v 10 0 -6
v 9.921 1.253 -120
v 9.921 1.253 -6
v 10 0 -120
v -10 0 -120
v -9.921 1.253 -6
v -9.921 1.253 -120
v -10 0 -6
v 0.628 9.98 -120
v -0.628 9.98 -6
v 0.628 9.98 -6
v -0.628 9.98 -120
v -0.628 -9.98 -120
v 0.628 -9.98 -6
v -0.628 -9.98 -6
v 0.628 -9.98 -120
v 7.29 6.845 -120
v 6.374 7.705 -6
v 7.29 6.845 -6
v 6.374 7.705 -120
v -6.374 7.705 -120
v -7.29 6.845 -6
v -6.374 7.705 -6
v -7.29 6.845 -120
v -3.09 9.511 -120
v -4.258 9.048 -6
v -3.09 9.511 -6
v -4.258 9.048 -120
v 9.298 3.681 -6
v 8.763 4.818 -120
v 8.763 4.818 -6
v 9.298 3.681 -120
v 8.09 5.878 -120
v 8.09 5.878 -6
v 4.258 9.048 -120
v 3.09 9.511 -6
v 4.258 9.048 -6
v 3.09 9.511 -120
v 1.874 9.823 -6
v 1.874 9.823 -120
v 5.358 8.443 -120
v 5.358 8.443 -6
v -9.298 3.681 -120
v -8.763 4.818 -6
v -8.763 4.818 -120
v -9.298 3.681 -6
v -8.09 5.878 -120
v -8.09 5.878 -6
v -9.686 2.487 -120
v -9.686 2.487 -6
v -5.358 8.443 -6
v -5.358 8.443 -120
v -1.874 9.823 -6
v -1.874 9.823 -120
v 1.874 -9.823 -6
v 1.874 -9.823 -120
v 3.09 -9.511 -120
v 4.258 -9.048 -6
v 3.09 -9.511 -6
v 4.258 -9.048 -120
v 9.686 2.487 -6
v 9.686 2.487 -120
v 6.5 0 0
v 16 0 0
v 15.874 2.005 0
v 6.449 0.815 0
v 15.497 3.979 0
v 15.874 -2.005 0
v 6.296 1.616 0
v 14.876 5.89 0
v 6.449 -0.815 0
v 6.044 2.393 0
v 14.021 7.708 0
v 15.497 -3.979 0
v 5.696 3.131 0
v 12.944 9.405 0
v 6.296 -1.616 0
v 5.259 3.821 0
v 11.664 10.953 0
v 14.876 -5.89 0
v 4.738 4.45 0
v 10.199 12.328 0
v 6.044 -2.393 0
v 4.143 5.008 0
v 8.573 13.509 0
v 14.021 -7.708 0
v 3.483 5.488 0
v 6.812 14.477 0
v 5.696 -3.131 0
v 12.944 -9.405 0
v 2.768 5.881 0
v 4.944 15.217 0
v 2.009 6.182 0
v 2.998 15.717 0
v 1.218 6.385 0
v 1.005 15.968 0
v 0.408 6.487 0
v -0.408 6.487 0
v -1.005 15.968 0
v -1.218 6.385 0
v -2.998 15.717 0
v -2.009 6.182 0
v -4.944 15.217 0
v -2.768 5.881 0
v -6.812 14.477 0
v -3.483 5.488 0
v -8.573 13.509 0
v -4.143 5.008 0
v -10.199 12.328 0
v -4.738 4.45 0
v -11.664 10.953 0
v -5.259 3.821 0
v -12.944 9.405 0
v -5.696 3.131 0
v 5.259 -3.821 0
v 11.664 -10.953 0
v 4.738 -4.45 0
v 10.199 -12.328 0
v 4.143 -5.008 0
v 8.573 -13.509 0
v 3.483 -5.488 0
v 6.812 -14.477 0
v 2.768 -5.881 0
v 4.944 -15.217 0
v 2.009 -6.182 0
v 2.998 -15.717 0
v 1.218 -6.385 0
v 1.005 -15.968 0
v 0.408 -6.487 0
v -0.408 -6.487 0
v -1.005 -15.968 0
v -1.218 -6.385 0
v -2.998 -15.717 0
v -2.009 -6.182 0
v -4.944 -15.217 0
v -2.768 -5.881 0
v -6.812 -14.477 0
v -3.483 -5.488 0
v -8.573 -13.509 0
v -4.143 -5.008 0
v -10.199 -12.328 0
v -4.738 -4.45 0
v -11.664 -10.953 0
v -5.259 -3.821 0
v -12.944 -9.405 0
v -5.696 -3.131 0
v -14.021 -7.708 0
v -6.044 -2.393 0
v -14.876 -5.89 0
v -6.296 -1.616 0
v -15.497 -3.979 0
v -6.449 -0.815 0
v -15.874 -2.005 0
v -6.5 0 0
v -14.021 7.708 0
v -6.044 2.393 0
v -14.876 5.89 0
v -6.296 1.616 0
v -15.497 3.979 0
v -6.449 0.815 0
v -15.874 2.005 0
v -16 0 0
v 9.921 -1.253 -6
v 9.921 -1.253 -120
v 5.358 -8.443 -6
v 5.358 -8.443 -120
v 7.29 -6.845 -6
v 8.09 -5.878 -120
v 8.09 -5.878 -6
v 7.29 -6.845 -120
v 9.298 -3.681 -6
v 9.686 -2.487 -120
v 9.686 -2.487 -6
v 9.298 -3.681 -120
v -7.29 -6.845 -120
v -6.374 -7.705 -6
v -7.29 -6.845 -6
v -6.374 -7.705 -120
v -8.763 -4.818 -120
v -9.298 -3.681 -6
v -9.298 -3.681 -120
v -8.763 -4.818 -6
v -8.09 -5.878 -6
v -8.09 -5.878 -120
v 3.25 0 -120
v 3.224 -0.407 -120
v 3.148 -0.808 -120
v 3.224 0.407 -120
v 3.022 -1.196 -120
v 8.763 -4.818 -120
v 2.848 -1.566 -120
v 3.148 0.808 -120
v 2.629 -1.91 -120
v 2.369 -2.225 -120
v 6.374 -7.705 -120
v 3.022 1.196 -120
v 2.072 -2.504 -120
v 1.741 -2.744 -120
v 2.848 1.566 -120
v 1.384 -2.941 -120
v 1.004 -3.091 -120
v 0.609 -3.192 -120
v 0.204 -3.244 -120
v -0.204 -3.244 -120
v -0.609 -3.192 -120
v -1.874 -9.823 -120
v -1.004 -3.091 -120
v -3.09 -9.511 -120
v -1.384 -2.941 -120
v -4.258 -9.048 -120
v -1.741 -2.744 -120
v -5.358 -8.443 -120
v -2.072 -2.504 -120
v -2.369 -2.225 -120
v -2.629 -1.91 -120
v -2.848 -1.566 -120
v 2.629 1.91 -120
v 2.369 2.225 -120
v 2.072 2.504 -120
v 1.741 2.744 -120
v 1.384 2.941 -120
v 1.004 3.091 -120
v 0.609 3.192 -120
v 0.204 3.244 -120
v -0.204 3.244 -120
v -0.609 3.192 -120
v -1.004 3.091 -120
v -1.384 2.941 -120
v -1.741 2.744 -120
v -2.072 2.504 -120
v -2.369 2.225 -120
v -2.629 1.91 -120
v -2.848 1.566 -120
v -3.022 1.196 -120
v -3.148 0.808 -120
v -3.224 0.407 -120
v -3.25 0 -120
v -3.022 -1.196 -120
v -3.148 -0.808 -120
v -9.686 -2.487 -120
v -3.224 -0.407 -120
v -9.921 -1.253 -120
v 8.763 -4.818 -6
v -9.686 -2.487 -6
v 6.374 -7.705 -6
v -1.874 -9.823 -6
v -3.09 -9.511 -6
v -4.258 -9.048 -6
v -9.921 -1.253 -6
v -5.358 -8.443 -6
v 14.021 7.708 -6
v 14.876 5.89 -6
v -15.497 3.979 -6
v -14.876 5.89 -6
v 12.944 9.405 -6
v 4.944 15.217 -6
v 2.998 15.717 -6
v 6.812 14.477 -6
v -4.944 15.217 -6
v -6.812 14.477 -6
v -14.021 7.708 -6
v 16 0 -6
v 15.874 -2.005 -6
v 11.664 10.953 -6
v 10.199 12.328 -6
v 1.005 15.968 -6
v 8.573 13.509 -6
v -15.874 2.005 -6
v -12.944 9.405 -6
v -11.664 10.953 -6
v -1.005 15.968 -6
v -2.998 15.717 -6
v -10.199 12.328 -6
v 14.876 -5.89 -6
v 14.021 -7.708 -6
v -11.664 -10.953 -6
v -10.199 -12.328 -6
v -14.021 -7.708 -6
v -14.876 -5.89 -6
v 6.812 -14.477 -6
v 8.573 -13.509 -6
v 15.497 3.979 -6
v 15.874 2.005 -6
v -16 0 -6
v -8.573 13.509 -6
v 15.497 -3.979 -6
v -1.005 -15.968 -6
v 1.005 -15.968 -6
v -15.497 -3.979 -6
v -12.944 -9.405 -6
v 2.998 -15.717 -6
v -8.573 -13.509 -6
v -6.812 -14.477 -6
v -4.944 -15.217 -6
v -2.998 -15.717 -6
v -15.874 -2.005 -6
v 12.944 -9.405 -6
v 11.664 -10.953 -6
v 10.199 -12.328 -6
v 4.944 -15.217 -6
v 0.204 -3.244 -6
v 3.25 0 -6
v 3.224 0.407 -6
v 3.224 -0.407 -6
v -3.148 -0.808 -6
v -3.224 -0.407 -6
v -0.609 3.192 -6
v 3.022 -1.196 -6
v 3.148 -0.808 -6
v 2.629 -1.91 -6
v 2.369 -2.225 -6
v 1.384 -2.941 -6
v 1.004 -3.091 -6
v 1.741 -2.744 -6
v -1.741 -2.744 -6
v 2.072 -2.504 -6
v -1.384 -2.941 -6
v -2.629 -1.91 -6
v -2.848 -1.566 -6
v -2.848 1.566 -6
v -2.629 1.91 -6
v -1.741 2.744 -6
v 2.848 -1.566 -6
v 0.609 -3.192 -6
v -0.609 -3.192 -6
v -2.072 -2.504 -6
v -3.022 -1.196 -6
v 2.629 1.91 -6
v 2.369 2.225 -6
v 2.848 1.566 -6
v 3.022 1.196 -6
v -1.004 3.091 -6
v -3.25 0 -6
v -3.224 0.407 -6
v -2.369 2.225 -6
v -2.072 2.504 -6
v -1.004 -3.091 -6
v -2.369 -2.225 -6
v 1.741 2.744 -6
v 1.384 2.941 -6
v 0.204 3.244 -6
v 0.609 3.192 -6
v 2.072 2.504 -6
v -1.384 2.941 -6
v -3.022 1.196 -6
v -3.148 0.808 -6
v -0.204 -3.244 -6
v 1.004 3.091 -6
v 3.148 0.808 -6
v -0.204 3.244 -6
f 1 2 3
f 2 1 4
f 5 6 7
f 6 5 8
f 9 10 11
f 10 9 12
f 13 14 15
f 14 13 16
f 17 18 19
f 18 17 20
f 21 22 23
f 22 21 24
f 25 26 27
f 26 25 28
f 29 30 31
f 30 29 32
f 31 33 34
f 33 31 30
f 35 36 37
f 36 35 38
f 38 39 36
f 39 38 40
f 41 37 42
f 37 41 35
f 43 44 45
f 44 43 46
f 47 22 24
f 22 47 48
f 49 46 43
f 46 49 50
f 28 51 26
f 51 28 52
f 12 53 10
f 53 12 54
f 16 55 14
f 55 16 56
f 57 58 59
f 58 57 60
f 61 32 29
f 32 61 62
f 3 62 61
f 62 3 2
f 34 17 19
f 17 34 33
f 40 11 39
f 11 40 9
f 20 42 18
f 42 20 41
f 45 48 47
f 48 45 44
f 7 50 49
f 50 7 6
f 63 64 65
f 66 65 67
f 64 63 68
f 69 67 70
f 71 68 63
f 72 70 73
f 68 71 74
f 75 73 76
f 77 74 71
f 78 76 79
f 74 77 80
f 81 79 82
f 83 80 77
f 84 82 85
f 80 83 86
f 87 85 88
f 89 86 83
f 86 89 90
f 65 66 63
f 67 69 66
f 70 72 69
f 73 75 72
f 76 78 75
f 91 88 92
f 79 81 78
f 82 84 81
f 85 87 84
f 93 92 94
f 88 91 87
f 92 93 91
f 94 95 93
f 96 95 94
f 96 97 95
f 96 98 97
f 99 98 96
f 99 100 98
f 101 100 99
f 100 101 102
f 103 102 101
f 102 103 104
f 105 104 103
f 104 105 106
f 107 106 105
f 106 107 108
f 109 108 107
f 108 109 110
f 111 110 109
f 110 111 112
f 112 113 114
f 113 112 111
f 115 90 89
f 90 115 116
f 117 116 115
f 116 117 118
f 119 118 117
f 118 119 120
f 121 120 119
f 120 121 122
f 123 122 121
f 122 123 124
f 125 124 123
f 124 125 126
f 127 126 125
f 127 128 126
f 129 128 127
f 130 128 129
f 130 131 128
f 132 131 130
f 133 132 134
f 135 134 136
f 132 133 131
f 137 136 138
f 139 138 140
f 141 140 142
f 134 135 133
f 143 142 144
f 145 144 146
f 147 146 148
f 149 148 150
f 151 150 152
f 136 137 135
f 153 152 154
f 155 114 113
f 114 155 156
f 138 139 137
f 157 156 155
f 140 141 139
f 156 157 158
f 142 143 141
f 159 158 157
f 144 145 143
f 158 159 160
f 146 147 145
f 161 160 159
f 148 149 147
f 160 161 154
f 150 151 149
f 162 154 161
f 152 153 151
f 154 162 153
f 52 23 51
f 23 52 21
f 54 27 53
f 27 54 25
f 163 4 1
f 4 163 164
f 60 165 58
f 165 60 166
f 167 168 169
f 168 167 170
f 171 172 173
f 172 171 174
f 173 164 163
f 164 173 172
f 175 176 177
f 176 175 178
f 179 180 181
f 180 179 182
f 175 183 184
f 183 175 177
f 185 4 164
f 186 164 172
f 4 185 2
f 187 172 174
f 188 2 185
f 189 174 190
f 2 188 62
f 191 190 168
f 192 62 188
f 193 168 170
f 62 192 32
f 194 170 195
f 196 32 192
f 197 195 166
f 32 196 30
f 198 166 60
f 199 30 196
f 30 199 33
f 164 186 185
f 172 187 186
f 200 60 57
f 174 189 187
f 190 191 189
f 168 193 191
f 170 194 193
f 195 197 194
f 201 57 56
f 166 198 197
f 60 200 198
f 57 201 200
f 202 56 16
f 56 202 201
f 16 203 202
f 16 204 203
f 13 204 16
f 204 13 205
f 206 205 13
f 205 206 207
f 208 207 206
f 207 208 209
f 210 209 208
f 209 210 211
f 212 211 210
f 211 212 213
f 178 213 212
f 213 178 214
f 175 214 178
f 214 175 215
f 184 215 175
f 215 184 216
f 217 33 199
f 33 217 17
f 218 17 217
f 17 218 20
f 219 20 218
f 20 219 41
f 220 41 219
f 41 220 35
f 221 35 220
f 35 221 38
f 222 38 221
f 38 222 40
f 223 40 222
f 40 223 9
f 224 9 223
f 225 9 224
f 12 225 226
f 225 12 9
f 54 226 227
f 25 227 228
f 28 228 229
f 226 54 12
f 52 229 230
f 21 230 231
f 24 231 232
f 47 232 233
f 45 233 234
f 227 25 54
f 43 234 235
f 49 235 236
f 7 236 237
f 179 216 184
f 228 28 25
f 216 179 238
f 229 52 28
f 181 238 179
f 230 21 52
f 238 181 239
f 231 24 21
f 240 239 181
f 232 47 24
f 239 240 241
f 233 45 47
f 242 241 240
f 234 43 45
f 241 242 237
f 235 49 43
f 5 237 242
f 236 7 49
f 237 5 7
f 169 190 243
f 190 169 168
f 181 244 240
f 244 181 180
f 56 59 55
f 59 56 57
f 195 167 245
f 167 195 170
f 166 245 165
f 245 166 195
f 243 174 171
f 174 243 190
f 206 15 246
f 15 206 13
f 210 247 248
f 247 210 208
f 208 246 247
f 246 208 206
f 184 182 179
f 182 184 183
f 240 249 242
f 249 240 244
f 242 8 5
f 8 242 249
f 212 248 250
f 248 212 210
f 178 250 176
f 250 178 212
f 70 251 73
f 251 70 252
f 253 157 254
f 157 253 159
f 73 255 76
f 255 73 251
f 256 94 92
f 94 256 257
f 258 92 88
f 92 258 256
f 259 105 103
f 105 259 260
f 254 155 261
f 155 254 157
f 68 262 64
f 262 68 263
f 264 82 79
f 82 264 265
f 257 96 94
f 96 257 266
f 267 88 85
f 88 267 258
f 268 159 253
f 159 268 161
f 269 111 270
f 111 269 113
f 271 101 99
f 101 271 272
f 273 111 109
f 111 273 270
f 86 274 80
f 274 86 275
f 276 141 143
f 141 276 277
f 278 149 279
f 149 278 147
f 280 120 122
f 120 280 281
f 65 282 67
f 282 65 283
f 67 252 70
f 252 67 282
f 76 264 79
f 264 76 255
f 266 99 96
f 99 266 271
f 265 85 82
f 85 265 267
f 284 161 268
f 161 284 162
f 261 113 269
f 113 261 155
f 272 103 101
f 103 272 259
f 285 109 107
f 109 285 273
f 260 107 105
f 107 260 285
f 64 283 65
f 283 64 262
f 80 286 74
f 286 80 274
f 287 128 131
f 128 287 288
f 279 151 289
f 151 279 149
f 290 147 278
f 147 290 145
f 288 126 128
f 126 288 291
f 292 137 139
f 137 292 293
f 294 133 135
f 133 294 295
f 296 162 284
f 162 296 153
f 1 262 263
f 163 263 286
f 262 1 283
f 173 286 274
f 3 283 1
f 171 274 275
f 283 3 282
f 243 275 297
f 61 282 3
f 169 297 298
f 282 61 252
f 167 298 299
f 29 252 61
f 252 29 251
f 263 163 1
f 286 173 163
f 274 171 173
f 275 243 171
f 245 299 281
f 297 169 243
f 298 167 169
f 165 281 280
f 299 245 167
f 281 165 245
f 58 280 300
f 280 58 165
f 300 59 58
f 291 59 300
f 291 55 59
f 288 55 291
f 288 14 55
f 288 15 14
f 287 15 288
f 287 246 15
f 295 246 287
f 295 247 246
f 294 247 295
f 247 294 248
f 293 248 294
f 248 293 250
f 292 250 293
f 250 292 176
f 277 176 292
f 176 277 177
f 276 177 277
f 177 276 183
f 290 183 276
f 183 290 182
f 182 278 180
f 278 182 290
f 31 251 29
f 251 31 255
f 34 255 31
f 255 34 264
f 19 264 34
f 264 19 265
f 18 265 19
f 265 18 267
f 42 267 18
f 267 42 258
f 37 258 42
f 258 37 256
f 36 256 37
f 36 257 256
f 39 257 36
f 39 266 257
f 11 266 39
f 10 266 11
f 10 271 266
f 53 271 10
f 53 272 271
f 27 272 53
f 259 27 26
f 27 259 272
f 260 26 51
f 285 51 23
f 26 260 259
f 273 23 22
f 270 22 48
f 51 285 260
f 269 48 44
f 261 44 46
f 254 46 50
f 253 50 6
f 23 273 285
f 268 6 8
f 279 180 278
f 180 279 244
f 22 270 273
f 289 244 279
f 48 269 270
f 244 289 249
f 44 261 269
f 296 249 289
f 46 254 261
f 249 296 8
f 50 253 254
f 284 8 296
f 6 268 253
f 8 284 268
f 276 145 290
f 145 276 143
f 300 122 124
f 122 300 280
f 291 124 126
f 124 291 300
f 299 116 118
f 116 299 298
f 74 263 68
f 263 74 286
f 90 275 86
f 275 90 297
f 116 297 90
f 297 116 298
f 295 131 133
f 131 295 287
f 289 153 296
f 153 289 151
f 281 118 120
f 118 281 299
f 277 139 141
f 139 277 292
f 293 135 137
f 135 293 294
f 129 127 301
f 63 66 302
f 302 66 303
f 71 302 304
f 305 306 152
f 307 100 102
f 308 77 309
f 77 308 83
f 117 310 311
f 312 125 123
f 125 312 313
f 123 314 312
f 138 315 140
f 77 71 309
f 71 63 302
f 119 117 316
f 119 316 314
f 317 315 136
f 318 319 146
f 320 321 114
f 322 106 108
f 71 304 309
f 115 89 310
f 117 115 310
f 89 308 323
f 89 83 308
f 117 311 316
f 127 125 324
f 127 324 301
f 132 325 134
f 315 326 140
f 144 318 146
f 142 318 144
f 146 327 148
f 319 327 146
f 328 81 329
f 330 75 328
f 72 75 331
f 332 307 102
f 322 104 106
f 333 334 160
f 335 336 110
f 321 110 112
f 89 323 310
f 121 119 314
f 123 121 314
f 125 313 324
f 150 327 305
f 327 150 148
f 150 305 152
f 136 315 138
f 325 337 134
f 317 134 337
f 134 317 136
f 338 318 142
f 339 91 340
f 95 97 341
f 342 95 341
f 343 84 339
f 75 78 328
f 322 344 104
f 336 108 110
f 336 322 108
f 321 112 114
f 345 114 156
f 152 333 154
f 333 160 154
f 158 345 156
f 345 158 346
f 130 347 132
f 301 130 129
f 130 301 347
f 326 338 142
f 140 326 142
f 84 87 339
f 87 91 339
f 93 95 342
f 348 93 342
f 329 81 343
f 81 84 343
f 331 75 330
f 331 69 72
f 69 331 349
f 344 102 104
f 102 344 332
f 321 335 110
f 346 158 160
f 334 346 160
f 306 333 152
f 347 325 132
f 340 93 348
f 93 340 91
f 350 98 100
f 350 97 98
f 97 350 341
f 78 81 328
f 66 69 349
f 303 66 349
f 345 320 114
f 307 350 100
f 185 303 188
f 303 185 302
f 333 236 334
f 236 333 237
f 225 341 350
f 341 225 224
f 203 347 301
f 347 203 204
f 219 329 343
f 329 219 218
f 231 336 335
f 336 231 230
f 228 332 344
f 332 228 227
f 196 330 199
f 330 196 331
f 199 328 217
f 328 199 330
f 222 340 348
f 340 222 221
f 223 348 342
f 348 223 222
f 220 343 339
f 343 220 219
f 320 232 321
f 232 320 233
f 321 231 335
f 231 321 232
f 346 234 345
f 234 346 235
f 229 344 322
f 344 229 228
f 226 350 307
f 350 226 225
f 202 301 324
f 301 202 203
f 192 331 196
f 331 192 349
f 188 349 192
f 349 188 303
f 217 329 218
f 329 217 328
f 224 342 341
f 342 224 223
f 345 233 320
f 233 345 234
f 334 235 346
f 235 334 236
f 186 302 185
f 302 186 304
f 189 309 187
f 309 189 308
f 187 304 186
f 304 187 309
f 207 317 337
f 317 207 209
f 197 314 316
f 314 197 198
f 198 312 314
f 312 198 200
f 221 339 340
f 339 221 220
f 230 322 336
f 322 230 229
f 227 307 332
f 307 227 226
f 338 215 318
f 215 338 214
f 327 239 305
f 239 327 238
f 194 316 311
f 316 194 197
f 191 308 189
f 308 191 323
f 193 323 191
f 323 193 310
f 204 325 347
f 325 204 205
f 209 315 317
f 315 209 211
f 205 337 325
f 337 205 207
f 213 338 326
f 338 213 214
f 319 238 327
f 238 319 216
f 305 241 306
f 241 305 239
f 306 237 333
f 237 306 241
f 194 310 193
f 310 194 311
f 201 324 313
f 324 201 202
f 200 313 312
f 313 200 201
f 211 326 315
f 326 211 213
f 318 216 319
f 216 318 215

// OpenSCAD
$fn = 50;


difference() {
	union() {
		translate(v = [0, 0, -120.0000000000]) {
			cylinder(h = 120, r = 10.0000000000);
		}
		translate(v = [0, 0, -6.0000000000]) {
			cylinder(h = 6, r = 16.0000000000);
		}
	}
	union() {
		translate(v = [0, 0, 0]) {
			rotate(a = [0, 0, 0]) {
				difference() {
					union() {
						#translate(v = [0, 0, -120.0000000000]) {
							cylinder(h = 120, r = 2.2500000000);
						}
						#translate(v = [0, 0, -6]) {
							cylinder(h = 6, r = 10.0000000000, r1 = 3.2500000000, r2 = 6.5000000000);
						}
						#translate(v = [0, 0, -120.0000000000]) {
							cylinder(h = 120, r = 3.2500000000);
						}
						#translate(v = [0, 0, -120.0000000000]) {
							cylinder(h = 120, r = 2.2500000000);
						}
					}
					union();
				}
			}
		}
	}
}
